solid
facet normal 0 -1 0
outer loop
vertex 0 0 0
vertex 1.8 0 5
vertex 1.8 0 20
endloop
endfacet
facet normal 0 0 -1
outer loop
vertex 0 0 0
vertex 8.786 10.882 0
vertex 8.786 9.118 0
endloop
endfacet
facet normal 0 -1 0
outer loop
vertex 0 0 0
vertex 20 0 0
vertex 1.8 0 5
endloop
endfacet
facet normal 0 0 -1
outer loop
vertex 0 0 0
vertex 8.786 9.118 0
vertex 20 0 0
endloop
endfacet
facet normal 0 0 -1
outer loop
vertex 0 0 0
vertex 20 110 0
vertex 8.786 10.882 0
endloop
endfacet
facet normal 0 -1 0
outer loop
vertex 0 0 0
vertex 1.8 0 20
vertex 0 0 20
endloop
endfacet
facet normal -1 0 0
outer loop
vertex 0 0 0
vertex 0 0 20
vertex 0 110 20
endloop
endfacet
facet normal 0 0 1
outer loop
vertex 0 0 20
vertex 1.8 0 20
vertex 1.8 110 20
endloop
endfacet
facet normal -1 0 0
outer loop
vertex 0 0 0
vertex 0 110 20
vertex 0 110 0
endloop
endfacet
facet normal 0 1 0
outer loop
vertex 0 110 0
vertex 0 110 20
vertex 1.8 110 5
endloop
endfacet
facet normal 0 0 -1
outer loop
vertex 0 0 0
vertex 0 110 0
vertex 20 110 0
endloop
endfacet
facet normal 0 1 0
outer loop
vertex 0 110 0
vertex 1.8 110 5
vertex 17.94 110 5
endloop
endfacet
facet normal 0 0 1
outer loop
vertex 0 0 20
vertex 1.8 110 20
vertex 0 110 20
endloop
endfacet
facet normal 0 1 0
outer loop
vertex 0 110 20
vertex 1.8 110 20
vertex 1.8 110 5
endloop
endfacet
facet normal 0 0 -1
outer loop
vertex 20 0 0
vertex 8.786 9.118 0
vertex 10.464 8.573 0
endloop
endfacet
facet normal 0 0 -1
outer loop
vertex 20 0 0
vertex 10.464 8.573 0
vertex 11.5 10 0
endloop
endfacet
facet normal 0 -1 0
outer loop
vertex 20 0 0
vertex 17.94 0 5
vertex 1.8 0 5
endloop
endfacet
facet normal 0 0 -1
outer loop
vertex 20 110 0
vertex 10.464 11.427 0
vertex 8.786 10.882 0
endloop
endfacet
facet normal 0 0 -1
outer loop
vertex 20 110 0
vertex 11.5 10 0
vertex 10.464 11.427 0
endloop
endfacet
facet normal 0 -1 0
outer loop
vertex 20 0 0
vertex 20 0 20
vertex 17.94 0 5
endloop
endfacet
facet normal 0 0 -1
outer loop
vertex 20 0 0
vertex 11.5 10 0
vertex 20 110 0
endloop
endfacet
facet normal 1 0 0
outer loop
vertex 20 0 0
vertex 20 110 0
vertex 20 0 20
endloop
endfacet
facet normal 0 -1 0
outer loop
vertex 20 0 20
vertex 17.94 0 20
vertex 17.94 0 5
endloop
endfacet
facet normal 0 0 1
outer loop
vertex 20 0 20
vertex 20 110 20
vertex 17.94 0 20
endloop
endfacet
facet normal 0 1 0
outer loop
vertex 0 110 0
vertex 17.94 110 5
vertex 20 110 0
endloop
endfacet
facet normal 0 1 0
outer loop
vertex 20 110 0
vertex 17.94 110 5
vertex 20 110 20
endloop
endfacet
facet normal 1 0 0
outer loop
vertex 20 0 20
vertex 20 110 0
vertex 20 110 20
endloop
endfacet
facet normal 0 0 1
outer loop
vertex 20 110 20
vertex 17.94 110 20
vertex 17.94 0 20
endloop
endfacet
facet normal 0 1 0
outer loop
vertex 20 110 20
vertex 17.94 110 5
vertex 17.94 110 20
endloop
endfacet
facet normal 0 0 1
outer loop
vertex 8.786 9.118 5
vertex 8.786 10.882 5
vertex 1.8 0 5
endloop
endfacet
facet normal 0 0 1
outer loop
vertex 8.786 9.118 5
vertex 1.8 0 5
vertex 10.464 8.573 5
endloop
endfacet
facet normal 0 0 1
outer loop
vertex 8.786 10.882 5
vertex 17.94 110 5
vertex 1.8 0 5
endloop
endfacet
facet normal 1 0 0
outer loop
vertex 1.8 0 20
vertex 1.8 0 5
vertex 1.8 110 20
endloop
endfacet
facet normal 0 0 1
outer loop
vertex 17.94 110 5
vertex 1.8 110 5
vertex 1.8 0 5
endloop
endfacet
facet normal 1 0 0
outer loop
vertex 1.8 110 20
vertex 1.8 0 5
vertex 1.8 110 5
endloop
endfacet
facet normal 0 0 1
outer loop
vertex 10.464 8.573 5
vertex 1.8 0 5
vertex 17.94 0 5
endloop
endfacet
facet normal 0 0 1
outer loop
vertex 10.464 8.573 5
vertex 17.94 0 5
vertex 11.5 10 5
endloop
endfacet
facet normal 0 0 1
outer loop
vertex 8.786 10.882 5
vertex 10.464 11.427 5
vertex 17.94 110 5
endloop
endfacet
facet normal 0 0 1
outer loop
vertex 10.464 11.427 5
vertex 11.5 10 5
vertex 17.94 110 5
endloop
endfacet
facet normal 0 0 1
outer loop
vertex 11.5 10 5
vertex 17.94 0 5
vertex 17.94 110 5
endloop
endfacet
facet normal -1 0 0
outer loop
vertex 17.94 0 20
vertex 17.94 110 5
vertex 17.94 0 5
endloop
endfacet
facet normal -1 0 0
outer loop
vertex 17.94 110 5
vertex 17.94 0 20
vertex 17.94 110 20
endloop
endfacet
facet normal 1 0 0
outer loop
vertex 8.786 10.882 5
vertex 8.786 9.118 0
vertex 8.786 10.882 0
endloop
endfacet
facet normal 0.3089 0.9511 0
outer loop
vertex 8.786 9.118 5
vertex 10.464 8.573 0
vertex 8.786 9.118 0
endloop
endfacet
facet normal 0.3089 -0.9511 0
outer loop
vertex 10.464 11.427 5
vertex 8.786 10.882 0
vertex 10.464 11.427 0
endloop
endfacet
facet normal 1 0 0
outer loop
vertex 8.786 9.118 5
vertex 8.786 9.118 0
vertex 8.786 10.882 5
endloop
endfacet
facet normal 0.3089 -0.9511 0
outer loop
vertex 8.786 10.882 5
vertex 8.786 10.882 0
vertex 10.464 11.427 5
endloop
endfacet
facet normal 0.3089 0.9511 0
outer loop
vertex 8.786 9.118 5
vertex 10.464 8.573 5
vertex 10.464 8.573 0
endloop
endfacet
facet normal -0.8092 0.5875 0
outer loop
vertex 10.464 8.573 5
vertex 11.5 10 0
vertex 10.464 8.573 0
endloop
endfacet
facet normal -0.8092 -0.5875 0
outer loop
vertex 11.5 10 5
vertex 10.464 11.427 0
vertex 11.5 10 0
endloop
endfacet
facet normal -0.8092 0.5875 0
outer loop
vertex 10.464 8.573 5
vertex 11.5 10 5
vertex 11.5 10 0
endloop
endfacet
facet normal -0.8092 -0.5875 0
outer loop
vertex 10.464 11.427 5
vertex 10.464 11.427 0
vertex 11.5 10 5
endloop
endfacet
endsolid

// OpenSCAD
difference() {
  cube([20, 110, 20]);
  translate([(20 - 16.4) / 2, -5, 5]) cube([16.14, 120, 20]);
  translate([10, 10, -1]) cylinder(d=3, h=100);
}
